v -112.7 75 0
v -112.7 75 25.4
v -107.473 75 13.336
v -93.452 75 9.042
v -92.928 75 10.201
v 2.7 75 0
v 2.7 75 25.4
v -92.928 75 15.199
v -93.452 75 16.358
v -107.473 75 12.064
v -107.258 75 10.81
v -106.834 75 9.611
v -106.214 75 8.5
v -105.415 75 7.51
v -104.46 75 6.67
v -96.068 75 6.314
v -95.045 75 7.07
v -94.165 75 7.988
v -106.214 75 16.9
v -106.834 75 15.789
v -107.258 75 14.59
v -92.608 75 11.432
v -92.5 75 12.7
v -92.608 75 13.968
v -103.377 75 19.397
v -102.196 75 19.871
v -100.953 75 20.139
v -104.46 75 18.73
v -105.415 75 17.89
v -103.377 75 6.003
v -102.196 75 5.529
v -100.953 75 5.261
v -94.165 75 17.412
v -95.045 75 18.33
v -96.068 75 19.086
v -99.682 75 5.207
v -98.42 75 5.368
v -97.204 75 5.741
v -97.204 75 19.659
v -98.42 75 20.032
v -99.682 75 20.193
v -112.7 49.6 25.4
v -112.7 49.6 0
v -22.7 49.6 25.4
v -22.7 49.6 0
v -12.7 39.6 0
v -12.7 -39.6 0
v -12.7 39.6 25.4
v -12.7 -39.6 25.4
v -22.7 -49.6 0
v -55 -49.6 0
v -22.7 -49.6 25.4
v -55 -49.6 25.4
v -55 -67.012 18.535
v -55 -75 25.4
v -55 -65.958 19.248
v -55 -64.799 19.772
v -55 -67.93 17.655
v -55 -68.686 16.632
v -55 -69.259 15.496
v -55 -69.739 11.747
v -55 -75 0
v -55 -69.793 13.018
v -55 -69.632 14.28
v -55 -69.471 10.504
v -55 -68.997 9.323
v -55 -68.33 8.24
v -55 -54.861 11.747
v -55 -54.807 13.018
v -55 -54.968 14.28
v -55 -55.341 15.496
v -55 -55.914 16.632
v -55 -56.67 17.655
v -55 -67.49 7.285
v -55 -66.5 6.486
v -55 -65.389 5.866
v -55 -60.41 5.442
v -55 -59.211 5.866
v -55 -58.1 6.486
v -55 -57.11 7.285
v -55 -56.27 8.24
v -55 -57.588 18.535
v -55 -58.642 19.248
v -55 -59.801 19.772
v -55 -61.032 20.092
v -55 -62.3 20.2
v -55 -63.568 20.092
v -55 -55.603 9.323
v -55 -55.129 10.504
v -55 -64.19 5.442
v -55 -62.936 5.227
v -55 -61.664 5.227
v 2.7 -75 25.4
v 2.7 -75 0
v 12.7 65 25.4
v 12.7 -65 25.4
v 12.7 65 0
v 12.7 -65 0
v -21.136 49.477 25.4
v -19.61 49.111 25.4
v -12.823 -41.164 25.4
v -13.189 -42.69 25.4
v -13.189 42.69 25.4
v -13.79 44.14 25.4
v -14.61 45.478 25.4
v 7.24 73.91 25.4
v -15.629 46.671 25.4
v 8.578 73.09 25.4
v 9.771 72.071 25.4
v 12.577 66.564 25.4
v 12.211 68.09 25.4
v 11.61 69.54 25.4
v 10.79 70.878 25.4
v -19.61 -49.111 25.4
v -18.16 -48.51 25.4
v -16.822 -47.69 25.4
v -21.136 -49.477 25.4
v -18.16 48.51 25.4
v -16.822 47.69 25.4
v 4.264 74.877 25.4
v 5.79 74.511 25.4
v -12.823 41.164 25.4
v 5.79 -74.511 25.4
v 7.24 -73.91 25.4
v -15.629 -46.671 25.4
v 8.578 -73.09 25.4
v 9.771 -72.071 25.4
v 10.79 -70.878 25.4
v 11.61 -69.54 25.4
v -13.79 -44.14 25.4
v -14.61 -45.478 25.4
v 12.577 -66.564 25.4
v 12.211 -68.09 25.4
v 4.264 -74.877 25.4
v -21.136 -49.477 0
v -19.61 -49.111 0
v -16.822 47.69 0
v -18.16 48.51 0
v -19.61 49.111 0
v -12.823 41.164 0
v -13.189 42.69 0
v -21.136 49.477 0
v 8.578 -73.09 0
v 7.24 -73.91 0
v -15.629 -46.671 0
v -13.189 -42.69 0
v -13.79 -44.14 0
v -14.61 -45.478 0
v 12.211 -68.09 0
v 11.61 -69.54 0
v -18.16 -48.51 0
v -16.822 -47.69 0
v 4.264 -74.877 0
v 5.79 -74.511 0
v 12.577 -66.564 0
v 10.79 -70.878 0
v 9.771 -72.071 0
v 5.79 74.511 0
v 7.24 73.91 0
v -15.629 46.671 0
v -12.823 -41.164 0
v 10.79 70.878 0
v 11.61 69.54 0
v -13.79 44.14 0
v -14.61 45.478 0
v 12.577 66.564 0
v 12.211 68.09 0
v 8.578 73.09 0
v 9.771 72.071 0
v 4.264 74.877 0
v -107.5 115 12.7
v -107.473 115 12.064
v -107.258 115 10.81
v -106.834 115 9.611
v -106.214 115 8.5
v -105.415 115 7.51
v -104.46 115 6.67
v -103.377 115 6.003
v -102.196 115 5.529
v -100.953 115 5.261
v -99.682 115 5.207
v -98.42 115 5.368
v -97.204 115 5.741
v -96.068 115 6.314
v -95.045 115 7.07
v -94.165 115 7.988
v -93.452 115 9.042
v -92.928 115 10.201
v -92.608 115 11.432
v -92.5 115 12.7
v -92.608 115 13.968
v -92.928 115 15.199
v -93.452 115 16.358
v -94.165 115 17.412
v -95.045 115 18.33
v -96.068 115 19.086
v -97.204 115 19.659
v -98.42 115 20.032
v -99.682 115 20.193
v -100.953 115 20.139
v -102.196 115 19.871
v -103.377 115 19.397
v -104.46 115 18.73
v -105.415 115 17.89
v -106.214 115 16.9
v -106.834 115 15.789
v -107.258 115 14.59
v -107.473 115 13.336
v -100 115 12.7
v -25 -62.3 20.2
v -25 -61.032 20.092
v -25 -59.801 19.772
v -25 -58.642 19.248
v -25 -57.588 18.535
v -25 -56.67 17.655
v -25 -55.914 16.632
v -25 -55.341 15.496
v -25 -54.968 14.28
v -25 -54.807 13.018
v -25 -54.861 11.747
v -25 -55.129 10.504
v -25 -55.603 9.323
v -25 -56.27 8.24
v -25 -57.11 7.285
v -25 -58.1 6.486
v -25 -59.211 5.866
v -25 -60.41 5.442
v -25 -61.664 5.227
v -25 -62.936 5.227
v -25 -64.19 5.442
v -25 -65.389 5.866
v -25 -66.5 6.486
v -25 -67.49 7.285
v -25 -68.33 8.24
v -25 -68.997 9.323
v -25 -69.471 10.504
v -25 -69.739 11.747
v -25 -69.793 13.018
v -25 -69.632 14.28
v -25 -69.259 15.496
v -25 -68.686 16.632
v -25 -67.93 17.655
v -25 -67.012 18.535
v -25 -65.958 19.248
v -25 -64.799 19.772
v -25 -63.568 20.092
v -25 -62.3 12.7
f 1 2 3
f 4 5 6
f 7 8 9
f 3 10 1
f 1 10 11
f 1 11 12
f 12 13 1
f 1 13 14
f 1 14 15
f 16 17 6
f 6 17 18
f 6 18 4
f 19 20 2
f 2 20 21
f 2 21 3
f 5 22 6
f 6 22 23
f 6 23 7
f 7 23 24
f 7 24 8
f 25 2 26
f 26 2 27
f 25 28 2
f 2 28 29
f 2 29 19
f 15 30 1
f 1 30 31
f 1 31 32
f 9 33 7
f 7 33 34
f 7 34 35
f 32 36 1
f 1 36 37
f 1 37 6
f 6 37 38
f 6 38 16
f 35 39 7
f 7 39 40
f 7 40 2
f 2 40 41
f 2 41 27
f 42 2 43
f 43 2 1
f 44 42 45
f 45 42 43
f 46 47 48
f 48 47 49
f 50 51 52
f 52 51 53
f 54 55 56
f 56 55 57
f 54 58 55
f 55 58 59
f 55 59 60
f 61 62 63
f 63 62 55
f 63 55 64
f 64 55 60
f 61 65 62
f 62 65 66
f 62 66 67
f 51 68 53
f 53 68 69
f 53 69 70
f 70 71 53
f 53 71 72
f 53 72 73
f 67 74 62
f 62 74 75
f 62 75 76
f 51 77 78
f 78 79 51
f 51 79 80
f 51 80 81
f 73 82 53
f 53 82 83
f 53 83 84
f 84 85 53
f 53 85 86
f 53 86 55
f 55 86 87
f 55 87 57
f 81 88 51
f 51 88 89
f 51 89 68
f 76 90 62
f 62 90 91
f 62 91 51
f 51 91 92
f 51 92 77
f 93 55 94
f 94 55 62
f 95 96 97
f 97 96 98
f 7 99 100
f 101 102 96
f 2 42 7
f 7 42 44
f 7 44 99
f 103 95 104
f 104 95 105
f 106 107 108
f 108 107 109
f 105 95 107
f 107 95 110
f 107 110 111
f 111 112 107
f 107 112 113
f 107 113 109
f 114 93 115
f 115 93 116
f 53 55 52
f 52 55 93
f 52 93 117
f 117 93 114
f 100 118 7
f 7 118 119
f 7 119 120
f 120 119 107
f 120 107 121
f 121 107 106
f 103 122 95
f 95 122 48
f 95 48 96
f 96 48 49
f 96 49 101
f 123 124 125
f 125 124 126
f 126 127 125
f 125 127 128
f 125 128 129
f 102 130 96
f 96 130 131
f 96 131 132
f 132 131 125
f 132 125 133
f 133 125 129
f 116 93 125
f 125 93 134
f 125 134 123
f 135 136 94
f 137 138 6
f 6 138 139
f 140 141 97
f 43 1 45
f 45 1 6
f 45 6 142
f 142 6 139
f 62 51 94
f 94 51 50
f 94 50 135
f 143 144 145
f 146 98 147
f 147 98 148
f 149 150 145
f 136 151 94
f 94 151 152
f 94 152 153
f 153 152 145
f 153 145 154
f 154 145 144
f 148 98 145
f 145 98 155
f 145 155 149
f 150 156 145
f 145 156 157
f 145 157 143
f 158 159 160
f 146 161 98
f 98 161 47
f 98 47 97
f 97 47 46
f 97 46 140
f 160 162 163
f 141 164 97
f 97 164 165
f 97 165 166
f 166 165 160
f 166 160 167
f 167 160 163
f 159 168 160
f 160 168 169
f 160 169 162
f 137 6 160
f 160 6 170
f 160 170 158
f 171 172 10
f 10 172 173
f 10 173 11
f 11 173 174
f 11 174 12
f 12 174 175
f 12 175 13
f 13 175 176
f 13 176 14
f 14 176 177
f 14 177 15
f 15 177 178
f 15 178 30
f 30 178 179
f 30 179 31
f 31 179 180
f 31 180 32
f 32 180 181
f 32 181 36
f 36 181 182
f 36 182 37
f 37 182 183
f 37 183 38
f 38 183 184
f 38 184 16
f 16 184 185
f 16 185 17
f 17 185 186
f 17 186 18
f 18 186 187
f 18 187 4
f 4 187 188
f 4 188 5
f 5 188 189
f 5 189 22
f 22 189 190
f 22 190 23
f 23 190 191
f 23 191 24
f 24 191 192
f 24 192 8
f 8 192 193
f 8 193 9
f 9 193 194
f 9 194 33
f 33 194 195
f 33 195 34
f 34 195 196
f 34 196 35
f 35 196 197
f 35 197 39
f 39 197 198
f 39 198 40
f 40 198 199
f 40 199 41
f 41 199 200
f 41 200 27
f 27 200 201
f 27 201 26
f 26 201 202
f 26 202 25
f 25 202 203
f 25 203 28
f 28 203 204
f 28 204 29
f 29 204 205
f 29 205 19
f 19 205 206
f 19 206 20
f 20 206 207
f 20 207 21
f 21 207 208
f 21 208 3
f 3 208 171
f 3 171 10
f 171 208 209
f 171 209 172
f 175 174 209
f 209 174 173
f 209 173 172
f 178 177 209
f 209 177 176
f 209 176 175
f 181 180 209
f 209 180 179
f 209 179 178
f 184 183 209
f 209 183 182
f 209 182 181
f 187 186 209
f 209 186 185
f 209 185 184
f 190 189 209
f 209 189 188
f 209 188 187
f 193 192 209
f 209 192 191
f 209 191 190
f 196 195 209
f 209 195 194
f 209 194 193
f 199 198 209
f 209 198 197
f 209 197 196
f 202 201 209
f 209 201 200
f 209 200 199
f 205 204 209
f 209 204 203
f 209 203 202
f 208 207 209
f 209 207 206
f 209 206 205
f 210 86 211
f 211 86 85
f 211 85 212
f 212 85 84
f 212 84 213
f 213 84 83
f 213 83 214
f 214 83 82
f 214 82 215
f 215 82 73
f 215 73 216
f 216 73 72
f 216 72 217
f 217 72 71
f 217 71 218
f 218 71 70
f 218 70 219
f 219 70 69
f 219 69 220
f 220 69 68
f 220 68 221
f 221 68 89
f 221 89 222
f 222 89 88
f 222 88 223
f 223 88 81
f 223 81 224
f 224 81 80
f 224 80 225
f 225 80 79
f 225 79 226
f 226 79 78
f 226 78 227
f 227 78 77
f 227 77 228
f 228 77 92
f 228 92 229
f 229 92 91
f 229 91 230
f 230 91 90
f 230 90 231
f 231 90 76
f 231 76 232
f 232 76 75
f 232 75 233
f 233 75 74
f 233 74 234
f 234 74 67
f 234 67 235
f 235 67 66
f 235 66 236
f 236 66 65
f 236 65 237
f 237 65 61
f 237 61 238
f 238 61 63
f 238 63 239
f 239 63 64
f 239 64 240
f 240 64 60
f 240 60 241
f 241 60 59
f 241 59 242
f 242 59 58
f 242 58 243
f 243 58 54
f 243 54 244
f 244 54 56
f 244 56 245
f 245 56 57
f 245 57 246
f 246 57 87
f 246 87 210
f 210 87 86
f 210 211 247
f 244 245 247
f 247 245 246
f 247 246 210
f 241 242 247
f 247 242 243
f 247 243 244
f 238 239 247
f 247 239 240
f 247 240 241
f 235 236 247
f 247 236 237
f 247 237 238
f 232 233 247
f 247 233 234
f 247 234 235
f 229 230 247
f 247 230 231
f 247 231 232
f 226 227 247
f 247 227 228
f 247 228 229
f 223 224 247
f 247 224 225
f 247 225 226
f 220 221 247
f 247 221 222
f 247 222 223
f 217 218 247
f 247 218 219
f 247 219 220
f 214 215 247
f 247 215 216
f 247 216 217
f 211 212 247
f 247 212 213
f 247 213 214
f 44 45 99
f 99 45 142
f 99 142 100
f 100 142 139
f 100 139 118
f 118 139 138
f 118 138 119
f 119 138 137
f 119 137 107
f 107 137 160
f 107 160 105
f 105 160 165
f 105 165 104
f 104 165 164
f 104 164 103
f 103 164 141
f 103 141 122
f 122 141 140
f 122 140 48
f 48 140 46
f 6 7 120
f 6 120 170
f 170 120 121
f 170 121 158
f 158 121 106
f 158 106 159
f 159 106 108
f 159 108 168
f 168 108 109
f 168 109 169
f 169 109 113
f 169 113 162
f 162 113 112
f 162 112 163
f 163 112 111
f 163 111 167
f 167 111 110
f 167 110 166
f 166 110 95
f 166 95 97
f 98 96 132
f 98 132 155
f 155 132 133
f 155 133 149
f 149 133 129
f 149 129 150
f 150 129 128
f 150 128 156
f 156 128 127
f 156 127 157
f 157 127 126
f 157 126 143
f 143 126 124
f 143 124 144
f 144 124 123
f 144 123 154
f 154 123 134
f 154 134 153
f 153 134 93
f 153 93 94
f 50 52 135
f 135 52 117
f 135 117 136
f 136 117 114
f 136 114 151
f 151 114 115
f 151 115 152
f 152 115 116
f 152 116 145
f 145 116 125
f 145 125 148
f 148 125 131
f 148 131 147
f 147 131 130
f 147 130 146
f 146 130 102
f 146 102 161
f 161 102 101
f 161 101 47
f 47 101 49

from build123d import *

# Parameters (mm, degrees)
SKETCH1_W           = 100
SKETCH1_H           = 25.4
SKETCH1_W_2         = 25.4
SKETCH1_H_2         = 150
SKETCH1_W_3         = 42.3
BOSS_EXTRUDE1_DEPTH = 25.4
BOSS_EXTRUDE2_DEPTH = 40
CUT_EXTRUDE2_DEPTH  = 30
FILLET1_R           = 10


with BuildPart() as part:
    # Sketch1 → Boss-Extrude1 (new body)
    with BuildSketch(Plane.XY):
        with Locations((-62.7, 62.3)):
            Rectangle(SKETCH1_W, SKETCH1_H)
        Rectangle(SKETCH1_W_2, SKETCH1_H_2)
        with Locations((-33.85, -62.3)):
            Rectangle(SKETCH1_W_3, SKETCH1_H)
    extrude(amount=BOSS_EXTRUDE1_DEPTH)

    # Sketch2 → Boss-Extrude2 (add)
    with BuildSketch(Plane(origin=(0, 75, 0), x_dir=(1, 0, 0), z_dir=(0, 1, 0))):
        with BuildLine():
            ThreePointArc((-94.696699141, -7.396699141), (-105.303300859, -7.396699141), (-105.303300859, -18.003300859))
            Line((-105.303300859, -18.003300859), (-94.696699141, -7.396699141))
        make_face()
        with BuildLine():
            Line((-94.696699141, -7.396699141), (-105.303300859, -18.003300859))
            ThreePointArc((-105.303300859, -18.003300859), (-97.129874257, -19.629096494), (-92.5, -12.7))
            ThreePointArc((-92.5, -12.7), (-93.070903506, -9.829874257), (-94.696699141, -7.396699141))
        make_face()
    extrude(amount=BOSS_EXTRUDE2_DEPTH)

    # Sketch3 → Cut-Extrude2 (cut)
    with BuildSketch(Plane.ZY.offset(55)):
        with BuildLine():
            ThreePointArc((20.2, -62.3), (19.629096494, -59.429874257), (18.003300859, -56.996699141))
            Line((18.003300859, -56.996699141), (7.396699141, -67.603300859))
            ThreePointArc((7.396699141, -67.603300859), (15.570125743, -69.229096494), (20.2, -62.3))
        make_face()
        with BuildLine():
            Line((7.396699141, -67.603300859), (18.003300859, -56.996699141))
            ThreePointArc((18.003300859, -56.996699141), (7.396699141, -56.996699141), (7.396699141, -67.603300859))
        make_face()
    extrude(amount=-CUT_EXTRUDE2_DEPTH, mode=Mode.SUBTRACT)

    # Fillet1
    fillet1_edges = [part.edges().sort_by_distance(p)[0] for p in [
        (12.7, 75, 12.7),
        (12.7, -75, 12.7),
        (-12.7, -49.6, 12.7),
        (-12.7, 49.6, 12.7),
    ]]
    fillet(fillet1_edges, radius=FILLET1_R)


solid = part.part
